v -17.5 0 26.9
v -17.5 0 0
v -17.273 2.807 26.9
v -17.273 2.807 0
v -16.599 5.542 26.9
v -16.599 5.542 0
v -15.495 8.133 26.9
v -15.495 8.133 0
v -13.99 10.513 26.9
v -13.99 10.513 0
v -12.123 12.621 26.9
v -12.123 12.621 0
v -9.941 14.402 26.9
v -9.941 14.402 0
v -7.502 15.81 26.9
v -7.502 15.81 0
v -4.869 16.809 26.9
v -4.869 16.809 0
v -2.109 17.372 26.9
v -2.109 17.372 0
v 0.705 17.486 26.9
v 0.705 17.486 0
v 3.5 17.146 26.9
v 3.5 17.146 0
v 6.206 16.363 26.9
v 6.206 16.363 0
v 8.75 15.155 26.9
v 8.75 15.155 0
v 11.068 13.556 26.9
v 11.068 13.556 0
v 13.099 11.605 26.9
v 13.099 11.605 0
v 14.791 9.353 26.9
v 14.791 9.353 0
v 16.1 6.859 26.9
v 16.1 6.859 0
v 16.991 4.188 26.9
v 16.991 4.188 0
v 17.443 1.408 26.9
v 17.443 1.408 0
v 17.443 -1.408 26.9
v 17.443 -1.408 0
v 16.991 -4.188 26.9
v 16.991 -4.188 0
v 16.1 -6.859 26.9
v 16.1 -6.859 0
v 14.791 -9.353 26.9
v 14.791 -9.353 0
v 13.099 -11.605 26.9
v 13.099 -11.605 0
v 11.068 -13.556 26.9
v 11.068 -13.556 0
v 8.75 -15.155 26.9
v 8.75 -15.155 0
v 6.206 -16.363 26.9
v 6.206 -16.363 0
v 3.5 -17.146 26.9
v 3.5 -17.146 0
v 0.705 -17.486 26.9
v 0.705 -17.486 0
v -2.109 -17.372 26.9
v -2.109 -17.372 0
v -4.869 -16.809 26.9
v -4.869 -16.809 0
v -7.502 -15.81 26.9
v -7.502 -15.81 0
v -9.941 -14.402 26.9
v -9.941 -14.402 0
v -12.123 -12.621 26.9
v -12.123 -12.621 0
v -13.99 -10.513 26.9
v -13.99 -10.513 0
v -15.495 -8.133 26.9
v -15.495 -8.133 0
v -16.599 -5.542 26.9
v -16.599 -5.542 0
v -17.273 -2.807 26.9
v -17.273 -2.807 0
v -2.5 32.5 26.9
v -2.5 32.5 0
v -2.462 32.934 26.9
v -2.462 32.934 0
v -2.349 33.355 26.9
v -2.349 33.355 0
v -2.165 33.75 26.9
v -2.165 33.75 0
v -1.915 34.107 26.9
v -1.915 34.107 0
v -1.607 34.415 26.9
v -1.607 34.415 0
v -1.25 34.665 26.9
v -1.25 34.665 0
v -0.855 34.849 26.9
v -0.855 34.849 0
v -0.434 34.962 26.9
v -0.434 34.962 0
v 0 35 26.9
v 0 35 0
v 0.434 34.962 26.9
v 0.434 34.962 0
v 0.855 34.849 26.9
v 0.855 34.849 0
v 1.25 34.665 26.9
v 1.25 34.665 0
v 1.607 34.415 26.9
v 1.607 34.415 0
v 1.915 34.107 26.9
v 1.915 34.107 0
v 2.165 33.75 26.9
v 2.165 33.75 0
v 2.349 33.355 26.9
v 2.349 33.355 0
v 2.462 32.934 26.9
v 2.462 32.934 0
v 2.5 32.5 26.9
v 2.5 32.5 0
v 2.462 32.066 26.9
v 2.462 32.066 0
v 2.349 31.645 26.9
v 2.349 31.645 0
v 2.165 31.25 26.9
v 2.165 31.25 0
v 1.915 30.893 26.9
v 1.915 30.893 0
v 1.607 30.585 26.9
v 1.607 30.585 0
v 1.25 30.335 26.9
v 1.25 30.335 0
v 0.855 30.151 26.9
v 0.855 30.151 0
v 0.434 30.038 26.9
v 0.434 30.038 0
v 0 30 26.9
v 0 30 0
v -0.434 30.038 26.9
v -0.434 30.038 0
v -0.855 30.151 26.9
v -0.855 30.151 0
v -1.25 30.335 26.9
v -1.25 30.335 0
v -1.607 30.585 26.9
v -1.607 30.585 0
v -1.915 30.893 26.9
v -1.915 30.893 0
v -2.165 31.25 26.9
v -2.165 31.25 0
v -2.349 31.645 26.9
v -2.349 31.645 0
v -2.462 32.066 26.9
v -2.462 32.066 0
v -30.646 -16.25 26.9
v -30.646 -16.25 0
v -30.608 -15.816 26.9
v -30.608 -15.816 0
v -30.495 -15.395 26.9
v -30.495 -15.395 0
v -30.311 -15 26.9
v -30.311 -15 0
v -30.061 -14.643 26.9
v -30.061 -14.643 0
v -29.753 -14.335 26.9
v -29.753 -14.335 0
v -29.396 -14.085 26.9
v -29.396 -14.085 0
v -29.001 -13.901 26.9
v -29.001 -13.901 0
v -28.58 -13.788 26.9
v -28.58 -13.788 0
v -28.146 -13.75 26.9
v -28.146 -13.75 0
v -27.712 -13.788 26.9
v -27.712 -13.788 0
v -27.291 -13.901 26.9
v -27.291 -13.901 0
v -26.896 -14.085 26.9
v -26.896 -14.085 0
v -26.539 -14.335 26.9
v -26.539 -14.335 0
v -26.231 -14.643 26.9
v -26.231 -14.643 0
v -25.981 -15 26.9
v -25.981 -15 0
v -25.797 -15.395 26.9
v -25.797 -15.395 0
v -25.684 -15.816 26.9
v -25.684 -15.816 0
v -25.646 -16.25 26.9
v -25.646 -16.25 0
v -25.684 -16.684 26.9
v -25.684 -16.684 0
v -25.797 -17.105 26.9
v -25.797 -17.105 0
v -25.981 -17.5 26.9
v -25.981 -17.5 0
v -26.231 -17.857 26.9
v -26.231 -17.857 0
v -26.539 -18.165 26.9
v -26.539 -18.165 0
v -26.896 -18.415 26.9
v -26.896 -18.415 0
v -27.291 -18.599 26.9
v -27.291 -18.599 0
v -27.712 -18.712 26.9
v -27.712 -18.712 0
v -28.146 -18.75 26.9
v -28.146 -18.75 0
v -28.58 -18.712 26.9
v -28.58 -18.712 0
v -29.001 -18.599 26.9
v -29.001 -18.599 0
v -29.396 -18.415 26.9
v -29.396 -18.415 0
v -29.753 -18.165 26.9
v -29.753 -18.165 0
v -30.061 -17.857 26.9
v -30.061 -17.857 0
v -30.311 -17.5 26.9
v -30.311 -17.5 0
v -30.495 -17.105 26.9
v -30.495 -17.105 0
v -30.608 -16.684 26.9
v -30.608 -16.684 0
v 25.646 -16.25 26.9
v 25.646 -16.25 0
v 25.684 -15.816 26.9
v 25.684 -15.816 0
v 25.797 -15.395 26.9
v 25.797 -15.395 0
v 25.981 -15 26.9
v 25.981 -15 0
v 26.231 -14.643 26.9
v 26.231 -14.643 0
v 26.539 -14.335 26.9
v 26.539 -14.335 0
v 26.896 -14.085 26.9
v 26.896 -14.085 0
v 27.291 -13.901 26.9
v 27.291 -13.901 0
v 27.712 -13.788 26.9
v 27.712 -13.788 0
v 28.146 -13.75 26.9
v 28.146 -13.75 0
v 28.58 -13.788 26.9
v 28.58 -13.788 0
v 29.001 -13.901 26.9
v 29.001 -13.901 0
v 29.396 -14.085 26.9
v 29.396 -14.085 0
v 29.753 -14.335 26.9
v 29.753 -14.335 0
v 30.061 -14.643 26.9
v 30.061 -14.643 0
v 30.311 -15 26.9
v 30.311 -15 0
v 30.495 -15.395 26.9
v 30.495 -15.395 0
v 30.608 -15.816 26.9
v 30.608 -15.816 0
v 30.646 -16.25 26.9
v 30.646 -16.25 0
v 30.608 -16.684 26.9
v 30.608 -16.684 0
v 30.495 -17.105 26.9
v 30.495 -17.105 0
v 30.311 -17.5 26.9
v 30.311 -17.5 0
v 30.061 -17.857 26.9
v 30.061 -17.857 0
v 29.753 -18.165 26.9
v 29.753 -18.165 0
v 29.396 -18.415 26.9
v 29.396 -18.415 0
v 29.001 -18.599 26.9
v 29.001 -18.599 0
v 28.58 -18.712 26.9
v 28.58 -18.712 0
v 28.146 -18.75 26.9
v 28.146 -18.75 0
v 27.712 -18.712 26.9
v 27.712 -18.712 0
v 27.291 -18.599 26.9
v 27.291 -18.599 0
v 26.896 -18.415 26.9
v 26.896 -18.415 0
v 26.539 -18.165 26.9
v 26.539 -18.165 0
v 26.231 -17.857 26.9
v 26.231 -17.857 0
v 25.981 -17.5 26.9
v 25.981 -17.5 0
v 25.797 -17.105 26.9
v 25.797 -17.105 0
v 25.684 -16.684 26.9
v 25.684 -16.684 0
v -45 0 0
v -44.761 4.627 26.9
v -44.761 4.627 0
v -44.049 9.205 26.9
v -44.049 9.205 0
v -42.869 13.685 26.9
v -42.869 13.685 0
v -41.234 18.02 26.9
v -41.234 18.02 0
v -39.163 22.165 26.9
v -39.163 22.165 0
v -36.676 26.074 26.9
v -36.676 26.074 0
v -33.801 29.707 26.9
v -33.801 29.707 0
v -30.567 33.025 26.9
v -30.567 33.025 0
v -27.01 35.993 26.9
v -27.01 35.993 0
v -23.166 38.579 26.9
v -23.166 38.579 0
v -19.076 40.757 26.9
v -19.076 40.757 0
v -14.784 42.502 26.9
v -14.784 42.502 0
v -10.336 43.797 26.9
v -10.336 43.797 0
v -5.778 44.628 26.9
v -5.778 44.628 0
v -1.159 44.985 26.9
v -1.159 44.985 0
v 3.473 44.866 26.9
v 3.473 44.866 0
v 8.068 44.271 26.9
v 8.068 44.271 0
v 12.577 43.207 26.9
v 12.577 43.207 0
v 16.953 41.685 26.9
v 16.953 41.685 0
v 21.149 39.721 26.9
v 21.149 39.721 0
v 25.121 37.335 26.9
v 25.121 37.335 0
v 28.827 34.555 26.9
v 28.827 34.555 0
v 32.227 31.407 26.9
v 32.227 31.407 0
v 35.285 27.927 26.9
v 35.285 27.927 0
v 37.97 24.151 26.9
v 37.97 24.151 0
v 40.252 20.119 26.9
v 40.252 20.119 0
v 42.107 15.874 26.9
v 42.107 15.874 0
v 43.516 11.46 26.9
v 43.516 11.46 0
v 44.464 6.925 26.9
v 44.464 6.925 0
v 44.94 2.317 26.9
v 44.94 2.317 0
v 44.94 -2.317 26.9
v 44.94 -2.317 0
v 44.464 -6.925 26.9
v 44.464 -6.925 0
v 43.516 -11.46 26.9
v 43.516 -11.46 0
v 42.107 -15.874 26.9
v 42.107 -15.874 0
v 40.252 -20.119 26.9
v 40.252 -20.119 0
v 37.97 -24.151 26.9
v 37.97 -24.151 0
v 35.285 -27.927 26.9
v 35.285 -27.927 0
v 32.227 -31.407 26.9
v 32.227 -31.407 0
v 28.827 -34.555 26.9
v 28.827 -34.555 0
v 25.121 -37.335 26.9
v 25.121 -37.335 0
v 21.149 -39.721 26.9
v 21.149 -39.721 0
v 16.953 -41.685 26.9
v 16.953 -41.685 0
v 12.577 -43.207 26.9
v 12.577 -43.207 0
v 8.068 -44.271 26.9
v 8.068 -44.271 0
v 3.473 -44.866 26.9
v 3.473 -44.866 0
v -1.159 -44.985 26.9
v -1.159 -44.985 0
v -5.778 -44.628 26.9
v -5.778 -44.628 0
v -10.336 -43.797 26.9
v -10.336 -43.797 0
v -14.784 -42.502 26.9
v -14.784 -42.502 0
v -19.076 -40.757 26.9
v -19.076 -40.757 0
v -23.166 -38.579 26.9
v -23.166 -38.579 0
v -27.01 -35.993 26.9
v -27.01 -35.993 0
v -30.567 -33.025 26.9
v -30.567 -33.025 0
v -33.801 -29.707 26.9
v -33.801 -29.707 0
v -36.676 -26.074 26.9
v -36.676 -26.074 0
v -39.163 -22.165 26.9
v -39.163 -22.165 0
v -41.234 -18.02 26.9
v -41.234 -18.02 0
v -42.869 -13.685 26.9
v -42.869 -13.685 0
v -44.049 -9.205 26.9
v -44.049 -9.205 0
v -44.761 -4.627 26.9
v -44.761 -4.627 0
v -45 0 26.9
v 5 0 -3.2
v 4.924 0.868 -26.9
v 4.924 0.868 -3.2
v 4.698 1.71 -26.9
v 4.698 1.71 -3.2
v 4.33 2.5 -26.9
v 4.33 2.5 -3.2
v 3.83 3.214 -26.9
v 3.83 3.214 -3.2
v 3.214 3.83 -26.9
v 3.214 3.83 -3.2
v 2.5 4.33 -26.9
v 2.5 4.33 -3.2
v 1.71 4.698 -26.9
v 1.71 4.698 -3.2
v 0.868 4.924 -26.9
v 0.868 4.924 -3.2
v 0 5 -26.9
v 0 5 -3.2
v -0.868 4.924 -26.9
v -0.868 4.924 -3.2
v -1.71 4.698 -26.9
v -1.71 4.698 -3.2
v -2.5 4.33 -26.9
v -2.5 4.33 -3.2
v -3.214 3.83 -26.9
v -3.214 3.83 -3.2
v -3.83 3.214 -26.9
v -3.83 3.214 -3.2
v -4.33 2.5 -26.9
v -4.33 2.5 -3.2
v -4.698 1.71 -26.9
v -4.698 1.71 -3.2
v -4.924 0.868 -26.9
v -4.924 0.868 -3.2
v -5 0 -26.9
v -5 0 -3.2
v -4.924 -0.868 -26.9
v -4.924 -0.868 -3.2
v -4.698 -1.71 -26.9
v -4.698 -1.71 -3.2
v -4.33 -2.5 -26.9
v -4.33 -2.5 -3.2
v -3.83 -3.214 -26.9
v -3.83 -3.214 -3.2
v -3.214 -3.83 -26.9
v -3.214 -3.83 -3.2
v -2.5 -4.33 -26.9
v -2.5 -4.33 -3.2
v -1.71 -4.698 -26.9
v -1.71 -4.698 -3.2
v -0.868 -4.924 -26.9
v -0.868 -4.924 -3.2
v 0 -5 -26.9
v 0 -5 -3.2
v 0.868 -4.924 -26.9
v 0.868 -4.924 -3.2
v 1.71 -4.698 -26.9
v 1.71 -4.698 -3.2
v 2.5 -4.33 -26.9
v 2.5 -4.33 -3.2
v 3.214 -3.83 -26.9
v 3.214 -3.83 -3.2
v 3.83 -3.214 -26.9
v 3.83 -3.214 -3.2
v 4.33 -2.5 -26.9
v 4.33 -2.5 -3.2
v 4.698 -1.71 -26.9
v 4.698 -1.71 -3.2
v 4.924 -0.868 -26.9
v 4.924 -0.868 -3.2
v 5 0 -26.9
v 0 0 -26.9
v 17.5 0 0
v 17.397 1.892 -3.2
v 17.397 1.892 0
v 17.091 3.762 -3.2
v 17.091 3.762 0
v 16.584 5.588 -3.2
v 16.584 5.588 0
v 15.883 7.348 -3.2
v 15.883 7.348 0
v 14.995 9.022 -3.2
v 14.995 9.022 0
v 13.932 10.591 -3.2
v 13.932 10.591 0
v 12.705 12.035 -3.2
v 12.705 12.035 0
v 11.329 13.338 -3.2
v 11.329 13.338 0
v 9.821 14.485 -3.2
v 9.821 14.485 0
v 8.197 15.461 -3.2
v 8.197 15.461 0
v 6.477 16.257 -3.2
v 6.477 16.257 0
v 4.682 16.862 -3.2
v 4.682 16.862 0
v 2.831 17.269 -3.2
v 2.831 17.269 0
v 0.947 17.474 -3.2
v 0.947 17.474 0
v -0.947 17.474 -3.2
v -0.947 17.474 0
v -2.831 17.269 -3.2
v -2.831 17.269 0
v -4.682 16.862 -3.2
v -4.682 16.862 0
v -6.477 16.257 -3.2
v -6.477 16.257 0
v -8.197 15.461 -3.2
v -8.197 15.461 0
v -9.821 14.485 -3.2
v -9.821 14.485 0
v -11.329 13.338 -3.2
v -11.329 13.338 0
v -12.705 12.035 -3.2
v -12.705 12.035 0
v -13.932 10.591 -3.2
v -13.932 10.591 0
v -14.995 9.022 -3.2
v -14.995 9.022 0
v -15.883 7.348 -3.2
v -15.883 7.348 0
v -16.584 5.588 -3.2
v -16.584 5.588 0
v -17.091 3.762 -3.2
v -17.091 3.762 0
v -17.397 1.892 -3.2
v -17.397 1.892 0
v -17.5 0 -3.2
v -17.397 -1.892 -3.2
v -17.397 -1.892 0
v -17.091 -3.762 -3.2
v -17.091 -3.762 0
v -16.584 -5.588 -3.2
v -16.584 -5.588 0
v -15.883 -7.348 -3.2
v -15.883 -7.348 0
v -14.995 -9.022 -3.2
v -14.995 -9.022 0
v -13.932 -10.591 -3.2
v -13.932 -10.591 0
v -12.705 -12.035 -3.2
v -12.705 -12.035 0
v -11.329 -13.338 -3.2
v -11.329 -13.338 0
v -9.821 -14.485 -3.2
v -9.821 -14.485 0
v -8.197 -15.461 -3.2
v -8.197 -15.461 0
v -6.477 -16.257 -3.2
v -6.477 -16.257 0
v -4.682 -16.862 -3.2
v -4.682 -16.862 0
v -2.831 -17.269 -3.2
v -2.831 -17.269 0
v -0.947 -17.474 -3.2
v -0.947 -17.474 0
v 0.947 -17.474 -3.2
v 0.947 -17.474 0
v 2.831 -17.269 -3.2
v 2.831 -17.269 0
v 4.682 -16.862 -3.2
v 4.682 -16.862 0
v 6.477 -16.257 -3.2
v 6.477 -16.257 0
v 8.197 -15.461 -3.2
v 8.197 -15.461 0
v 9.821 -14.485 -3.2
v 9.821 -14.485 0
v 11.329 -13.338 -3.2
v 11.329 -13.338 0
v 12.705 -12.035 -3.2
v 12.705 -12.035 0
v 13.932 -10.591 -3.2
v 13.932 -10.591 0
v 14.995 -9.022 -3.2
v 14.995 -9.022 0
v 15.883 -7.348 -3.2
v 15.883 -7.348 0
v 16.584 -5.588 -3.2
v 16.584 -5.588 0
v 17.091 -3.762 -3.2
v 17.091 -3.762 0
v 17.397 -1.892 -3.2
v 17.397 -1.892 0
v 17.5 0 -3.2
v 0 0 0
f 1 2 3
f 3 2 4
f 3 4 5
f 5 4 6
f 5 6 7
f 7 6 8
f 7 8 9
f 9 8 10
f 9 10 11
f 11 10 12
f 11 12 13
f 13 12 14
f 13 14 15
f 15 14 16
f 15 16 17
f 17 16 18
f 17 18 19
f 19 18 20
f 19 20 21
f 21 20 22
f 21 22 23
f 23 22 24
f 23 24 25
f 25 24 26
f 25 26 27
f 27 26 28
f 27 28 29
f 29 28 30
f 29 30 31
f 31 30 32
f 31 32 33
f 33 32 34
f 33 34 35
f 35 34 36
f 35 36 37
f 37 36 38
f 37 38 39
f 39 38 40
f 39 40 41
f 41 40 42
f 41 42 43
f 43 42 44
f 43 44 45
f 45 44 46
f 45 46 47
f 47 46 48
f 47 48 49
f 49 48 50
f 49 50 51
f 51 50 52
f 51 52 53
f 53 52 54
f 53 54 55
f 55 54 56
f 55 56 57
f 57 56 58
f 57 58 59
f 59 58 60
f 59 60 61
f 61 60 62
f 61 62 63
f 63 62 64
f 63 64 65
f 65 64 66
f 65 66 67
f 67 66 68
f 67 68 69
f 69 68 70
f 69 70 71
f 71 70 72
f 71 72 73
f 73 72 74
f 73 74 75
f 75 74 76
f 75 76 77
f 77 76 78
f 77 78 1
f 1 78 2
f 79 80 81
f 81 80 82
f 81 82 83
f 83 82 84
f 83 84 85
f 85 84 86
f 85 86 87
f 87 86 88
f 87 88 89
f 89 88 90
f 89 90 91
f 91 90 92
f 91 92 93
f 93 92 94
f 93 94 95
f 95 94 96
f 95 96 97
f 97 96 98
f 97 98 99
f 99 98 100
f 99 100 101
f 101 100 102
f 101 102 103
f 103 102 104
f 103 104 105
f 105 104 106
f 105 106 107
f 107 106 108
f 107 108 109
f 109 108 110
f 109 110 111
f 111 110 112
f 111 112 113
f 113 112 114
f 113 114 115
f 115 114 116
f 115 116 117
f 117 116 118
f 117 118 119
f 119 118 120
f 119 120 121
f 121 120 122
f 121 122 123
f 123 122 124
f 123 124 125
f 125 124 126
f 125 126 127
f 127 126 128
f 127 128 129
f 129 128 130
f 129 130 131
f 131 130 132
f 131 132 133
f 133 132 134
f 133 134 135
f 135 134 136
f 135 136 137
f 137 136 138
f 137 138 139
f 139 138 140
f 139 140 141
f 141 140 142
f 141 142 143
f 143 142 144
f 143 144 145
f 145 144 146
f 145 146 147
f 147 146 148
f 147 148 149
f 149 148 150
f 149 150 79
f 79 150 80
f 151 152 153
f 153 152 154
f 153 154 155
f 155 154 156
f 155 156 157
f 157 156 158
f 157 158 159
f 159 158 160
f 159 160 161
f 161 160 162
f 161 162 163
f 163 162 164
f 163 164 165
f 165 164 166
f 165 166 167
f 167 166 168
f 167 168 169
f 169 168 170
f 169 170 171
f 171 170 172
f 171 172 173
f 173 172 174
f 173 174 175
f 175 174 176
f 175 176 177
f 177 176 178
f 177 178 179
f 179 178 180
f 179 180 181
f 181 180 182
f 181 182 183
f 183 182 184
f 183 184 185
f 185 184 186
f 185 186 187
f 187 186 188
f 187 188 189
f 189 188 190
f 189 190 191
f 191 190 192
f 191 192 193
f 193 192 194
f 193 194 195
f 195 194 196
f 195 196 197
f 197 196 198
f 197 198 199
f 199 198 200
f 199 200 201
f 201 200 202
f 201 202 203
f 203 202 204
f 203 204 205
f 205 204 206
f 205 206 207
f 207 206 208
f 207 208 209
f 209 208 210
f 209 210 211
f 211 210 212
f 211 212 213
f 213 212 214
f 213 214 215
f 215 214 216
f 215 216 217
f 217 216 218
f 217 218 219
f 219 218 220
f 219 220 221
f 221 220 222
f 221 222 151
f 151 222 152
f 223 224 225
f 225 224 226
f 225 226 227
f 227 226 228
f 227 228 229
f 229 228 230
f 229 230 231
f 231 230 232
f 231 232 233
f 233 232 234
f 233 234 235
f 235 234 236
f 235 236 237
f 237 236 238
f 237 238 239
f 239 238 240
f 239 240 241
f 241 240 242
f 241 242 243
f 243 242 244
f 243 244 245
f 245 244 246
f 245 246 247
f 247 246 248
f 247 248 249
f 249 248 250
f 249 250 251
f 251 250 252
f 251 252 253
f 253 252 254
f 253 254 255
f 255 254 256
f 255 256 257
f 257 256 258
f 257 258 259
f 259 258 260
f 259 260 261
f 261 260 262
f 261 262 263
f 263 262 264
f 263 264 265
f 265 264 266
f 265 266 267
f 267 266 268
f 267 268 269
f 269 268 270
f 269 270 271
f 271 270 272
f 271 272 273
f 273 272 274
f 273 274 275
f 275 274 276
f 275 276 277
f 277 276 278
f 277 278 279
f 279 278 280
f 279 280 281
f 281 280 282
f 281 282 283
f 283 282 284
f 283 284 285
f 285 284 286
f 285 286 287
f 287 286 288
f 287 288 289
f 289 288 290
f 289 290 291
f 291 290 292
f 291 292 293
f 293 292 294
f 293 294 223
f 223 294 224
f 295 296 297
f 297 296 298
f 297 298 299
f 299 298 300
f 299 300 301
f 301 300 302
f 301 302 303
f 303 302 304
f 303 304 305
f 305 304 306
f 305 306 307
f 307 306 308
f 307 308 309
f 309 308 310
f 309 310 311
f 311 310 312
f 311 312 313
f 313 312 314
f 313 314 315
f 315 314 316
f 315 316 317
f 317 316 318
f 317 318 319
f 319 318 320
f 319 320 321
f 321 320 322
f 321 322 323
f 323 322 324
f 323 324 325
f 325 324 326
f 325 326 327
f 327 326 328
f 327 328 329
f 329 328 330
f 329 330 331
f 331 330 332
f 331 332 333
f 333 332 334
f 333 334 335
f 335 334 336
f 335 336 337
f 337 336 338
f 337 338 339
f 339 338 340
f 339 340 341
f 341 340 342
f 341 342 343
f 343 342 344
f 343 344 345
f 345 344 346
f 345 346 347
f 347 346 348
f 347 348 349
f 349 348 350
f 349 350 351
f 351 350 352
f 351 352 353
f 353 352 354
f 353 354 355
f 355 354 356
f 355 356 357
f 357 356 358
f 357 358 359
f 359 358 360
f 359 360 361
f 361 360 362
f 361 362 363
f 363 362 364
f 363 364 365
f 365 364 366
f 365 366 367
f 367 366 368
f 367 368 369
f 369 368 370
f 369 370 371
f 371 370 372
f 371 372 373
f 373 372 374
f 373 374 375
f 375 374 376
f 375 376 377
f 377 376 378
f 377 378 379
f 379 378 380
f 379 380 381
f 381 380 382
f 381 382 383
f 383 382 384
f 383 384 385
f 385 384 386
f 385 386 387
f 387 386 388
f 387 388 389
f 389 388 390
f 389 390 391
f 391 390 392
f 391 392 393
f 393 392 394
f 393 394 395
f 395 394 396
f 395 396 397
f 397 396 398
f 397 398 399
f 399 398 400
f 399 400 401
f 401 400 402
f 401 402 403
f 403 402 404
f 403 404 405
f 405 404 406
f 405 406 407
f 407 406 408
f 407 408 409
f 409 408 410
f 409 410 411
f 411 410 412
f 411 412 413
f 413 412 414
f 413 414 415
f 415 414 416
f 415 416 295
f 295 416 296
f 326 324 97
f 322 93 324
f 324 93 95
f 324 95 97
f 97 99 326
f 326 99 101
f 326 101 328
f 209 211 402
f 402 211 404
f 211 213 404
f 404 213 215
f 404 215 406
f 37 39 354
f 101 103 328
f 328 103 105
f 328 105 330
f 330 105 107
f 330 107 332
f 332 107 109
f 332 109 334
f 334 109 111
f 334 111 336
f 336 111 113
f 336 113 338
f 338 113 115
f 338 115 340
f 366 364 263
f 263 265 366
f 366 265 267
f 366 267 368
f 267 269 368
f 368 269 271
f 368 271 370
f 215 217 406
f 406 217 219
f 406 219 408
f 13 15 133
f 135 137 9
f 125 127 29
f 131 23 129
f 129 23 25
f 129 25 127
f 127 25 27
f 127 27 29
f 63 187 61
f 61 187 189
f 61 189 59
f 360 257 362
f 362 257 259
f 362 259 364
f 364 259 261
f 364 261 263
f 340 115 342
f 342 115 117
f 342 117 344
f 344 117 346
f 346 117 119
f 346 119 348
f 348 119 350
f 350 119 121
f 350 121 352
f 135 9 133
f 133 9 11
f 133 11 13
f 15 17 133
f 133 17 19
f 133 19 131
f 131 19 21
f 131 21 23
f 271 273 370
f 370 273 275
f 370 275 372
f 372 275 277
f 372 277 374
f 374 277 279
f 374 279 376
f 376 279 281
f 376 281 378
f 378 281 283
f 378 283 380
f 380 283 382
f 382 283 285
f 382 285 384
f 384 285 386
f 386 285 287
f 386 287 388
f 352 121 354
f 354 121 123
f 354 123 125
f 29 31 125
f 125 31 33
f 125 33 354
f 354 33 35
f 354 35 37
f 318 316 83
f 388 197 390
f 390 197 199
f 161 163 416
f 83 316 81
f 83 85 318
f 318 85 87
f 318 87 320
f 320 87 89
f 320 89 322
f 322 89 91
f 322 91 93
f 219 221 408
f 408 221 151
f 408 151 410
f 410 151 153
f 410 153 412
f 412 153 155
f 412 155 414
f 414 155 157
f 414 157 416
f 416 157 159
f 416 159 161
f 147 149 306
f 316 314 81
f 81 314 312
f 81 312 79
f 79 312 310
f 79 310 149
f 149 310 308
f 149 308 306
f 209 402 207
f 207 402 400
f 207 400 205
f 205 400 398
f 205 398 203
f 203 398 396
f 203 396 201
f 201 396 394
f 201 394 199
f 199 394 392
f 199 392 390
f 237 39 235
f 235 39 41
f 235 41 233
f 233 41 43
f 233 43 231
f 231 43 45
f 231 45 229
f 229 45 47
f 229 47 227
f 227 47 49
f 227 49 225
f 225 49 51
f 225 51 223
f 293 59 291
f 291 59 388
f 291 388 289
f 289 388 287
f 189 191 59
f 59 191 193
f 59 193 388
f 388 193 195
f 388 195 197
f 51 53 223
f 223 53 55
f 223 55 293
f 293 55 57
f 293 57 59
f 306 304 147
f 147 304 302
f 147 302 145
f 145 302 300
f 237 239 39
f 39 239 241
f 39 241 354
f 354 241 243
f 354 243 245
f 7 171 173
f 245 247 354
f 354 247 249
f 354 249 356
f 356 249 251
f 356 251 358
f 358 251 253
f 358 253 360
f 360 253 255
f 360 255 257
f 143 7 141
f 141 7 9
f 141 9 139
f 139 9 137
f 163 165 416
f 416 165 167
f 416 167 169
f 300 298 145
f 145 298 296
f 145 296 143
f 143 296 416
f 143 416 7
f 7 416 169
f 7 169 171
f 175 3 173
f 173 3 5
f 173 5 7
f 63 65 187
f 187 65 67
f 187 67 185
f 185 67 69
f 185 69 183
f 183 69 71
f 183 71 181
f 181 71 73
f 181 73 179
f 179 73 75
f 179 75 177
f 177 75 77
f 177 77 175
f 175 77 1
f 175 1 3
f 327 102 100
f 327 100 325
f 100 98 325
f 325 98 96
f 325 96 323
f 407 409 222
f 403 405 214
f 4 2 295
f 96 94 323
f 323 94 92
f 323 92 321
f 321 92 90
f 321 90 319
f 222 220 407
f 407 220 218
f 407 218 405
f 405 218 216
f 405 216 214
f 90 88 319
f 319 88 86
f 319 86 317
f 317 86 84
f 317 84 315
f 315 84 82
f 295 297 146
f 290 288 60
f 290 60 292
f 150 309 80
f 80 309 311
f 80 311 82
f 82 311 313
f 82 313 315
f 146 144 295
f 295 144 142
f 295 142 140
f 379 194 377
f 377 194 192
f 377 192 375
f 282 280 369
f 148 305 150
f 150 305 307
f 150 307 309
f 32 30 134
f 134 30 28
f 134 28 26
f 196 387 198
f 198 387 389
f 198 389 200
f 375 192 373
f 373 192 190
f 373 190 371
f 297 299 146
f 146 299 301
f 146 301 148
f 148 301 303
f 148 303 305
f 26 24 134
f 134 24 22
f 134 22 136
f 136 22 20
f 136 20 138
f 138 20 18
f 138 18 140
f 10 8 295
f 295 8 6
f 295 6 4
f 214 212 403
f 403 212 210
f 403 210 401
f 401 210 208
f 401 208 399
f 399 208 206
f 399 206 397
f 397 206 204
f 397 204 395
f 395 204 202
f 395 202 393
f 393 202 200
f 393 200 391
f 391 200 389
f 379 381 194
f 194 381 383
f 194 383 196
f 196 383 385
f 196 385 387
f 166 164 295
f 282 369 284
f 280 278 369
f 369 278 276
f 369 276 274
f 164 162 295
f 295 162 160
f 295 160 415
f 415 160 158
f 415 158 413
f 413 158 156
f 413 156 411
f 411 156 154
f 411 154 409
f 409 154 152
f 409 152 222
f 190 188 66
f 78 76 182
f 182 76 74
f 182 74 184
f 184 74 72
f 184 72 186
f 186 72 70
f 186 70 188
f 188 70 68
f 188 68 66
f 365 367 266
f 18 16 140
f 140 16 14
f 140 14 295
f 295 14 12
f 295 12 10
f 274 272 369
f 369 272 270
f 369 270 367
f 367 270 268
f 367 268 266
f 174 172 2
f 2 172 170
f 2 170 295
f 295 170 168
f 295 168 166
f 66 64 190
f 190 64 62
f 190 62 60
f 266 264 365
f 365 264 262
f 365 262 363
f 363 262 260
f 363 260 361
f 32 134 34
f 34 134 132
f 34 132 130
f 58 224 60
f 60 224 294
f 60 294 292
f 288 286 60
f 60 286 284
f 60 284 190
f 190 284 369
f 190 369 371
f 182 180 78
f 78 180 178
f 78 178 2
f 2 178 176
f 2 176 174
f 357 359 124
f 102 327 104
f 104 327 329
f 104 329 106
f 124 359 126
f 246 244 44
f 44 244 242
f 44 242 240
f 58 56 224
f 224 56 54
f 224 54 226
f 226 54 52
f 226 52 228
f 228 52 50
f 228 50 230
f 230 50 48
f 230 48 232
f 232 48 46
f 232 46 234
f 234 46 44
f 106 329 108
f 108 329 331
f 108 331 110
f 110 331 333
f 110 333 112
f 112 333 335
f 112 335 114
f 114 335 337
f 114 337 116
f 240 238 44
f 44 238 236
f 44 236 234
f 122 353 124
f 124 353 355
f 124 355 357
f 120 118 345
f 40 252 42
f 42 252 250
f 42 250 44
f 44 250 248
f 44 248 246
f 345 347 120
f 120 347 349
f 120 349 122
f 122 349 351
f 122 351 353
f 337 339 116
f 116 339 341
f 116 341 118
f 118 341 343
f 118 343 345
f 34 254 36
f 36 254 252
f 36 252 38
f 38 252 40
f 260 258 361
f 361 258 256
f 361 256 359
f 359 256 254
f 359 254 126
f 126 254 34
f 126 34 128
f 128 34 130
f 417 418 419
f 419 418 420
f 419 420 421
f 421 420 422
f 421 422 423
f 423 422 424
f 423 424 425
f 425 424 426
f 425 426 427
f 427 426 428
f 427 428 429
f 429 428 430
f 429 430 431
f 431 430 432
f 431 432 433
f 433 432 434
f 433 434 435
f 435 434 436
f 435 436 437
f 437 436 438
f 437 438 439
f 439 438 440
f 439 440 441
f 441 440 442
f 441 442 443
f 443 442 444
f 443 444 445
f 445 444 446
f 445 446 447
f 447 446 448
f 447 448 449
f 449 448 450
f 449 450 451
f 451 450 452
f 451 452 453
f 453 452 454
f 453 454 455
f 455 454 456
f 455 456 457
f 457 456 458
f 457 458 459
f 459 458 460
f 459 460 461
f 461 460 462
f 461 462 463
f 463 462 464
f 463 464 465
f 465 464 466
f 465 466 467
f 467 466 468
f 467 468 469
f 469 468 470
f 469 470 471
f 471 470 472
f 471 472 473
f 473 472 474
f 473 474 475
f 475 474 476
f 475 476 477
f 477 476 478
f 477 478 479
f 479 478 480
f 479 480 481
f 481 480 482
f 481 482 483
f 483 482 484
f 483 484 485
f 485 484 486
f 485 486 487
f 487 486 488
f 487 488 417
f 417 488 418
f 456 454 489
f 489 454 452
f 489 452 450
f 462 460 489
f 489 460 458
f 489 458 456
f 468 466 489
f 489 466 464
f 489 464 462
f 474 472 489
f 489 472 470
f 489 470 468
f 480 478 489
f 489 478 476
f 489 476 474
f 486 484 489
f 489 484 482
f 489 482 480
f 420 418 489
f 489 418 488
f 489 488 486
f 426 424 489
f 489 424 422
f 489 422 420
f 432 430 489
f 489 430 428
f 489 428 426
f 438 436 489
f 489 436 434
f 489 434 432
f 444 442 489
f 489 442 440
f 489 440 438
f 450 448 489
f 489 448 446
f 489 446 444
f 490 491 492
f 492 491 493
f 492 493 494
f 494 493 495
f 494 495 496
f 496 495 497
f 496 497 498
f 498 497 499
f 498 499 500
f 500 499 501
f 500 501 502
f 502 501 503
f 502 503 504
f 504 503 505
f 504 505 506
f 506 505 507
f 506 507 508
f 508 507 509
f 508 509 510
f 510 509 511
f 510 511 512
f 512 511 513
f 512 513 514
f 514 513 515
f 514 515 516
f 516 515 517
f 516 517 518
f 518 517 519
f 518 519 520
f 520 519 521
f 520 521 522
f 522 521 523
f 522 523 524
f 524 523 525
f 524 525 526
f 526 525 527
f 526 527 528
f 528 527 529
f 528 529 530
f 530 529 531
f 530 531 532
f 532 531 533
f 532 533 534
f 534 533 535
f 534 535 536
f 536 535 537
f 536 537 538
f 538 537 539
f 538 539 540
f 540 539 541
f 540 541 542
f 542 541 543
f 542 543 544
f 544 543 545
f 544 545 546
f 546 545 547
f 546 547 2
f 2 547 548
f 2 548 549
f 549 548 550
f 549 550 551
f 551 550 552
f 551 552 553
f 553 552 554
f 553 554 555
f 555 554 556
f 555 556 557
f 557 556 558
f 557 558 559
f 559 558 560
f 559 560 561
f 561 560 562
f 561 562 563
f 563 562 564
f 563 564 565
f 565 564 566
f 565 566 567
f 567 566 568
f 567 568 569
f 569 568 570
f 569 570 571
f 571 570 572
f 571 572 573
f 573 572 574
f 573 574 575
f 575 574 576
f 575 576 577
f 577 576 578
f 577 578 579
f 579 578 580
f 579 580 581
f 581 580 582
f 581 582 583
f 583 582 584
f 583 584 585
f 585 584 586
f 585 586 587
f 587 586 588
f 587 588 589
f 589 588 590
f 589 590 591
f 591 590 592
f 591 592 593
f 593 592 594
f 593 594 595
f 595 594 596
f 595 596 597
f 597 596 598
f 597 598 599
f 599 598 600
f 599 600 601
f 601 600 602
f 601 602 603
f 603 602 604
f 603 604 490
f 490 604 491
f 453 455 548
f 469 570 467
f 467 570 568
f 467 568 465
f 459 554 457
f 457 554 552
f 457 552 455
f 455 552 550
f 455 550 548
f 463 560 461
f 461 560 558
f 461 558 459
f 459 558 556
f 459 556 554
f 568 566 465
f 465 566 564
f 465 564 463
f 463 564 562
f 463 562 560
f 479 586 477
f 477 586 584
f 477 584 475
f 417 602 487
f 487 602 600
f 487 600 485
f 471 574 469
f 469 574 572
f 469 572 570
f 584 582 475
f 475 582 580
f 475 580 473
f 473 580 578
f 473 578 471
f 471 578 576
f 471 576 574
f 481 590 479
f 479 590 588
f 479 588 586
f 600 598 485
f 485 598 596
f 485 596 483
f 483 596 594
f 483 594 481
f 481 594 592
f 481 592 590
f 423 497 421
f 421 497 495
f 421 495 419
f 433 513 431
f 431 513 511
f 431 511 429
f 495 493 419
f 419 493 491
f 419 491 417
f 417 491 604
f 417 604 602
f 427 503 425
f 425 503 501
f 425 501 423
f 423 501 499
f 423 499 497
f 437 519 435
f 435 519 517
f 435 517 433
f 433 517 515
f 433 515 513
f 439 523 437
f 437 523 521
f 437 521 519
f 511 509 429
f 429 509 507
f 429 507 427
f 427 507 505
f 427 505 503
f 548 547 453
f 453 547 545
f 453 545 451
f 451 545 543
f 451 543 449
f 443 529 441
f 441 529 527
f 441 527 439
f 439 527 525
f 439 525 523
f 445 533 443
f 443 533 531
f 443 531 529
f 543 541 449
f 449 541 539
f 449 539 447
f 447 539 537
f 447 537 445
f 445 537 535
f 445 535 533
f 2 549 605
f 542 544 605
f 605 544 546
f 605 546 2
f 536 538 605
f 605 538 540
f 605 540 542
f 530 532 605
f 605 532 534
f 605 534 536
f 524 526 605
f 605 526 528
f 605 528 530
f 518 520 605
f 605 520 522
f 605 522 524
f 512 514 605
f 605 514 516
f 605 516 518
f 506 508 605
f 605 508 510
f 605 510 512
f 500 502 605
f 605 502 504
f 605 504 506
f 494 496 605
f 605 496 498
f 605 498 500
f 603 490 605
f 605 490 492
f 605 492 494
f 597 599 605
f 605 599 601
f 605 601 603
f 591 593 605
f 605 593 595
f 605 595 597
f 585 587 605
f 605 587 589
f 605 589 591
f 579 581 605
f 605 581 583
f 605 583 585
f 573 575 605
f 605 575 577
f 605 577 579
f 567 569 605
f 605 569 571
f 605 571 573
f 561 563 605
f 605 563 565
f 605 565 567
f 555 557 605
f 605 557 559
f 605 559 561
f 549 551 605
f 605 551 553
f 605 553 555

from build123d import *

# Parameters (mm, degrees)
SKETCH1_R           = 45
SKETCH1_R_2         = 2.5
SKETCH1_R_3         = 17.5
BOSS_EXTRUDE1_DEPTH = 26.9
SKETCH1_3_R         = 5
BOSS_EXTRUDE2_DEPTH = 26.9
BOSS_EXTRUDE3_START = -3.2
SKETCH1_4_R         = 17.5
SKETCH1_4_R_2       = 5
BOSS_EXTRUDE3_DEPTH = 3.2


with BuildPart() as part:
    # Sketch1 → Boss-Extrude1 (new body)
    with BuildSketch(Plane.XY):
        Circle(SKETCH1_R)
        with Locations((-28.145825623, -16.25)):
            Circle(SKETCH1_R_2, mode=Mode.SUBTRACT)
        with Locations((28.145825623, -16.25)):
            Circle(SKETCH1_R_2, mode=Mode.SUBTRACT)
        Circle(SKETCH1_R_3, mode=Mode.SUBTRACT)
        with Locations((0, 32.5)):
            Circle(SKETCH1_R_2, mode=Mode.SUBTRACT)
    extrude(amount=BOSS_EXTRUDE1_DEPTH)


with BuildPart() as body_2:
    # Sketch1<3> → Boss-Extrude2 (new body)
    with BuildSketch(Plane.XY):
        Circle(SKETCH1_3_R)
    extrude(amount=-BOSS_EXTRUDE2_DEPTH)

    # Sketch1<4> → Boss-Extrude3 (add)
    with BuildSketch(Plane.XY.offset(BOSS_EXTRUDE3_START)):
        Circle(SKETCH1_4_R)
        Circle(SKETCH1_4_R_2, mode=Mode.SUBTRACT)
    extrude(amount=BOSS_EXTRUDE3_DEPTH)


solid = Compound([part.part, body_2.part])
